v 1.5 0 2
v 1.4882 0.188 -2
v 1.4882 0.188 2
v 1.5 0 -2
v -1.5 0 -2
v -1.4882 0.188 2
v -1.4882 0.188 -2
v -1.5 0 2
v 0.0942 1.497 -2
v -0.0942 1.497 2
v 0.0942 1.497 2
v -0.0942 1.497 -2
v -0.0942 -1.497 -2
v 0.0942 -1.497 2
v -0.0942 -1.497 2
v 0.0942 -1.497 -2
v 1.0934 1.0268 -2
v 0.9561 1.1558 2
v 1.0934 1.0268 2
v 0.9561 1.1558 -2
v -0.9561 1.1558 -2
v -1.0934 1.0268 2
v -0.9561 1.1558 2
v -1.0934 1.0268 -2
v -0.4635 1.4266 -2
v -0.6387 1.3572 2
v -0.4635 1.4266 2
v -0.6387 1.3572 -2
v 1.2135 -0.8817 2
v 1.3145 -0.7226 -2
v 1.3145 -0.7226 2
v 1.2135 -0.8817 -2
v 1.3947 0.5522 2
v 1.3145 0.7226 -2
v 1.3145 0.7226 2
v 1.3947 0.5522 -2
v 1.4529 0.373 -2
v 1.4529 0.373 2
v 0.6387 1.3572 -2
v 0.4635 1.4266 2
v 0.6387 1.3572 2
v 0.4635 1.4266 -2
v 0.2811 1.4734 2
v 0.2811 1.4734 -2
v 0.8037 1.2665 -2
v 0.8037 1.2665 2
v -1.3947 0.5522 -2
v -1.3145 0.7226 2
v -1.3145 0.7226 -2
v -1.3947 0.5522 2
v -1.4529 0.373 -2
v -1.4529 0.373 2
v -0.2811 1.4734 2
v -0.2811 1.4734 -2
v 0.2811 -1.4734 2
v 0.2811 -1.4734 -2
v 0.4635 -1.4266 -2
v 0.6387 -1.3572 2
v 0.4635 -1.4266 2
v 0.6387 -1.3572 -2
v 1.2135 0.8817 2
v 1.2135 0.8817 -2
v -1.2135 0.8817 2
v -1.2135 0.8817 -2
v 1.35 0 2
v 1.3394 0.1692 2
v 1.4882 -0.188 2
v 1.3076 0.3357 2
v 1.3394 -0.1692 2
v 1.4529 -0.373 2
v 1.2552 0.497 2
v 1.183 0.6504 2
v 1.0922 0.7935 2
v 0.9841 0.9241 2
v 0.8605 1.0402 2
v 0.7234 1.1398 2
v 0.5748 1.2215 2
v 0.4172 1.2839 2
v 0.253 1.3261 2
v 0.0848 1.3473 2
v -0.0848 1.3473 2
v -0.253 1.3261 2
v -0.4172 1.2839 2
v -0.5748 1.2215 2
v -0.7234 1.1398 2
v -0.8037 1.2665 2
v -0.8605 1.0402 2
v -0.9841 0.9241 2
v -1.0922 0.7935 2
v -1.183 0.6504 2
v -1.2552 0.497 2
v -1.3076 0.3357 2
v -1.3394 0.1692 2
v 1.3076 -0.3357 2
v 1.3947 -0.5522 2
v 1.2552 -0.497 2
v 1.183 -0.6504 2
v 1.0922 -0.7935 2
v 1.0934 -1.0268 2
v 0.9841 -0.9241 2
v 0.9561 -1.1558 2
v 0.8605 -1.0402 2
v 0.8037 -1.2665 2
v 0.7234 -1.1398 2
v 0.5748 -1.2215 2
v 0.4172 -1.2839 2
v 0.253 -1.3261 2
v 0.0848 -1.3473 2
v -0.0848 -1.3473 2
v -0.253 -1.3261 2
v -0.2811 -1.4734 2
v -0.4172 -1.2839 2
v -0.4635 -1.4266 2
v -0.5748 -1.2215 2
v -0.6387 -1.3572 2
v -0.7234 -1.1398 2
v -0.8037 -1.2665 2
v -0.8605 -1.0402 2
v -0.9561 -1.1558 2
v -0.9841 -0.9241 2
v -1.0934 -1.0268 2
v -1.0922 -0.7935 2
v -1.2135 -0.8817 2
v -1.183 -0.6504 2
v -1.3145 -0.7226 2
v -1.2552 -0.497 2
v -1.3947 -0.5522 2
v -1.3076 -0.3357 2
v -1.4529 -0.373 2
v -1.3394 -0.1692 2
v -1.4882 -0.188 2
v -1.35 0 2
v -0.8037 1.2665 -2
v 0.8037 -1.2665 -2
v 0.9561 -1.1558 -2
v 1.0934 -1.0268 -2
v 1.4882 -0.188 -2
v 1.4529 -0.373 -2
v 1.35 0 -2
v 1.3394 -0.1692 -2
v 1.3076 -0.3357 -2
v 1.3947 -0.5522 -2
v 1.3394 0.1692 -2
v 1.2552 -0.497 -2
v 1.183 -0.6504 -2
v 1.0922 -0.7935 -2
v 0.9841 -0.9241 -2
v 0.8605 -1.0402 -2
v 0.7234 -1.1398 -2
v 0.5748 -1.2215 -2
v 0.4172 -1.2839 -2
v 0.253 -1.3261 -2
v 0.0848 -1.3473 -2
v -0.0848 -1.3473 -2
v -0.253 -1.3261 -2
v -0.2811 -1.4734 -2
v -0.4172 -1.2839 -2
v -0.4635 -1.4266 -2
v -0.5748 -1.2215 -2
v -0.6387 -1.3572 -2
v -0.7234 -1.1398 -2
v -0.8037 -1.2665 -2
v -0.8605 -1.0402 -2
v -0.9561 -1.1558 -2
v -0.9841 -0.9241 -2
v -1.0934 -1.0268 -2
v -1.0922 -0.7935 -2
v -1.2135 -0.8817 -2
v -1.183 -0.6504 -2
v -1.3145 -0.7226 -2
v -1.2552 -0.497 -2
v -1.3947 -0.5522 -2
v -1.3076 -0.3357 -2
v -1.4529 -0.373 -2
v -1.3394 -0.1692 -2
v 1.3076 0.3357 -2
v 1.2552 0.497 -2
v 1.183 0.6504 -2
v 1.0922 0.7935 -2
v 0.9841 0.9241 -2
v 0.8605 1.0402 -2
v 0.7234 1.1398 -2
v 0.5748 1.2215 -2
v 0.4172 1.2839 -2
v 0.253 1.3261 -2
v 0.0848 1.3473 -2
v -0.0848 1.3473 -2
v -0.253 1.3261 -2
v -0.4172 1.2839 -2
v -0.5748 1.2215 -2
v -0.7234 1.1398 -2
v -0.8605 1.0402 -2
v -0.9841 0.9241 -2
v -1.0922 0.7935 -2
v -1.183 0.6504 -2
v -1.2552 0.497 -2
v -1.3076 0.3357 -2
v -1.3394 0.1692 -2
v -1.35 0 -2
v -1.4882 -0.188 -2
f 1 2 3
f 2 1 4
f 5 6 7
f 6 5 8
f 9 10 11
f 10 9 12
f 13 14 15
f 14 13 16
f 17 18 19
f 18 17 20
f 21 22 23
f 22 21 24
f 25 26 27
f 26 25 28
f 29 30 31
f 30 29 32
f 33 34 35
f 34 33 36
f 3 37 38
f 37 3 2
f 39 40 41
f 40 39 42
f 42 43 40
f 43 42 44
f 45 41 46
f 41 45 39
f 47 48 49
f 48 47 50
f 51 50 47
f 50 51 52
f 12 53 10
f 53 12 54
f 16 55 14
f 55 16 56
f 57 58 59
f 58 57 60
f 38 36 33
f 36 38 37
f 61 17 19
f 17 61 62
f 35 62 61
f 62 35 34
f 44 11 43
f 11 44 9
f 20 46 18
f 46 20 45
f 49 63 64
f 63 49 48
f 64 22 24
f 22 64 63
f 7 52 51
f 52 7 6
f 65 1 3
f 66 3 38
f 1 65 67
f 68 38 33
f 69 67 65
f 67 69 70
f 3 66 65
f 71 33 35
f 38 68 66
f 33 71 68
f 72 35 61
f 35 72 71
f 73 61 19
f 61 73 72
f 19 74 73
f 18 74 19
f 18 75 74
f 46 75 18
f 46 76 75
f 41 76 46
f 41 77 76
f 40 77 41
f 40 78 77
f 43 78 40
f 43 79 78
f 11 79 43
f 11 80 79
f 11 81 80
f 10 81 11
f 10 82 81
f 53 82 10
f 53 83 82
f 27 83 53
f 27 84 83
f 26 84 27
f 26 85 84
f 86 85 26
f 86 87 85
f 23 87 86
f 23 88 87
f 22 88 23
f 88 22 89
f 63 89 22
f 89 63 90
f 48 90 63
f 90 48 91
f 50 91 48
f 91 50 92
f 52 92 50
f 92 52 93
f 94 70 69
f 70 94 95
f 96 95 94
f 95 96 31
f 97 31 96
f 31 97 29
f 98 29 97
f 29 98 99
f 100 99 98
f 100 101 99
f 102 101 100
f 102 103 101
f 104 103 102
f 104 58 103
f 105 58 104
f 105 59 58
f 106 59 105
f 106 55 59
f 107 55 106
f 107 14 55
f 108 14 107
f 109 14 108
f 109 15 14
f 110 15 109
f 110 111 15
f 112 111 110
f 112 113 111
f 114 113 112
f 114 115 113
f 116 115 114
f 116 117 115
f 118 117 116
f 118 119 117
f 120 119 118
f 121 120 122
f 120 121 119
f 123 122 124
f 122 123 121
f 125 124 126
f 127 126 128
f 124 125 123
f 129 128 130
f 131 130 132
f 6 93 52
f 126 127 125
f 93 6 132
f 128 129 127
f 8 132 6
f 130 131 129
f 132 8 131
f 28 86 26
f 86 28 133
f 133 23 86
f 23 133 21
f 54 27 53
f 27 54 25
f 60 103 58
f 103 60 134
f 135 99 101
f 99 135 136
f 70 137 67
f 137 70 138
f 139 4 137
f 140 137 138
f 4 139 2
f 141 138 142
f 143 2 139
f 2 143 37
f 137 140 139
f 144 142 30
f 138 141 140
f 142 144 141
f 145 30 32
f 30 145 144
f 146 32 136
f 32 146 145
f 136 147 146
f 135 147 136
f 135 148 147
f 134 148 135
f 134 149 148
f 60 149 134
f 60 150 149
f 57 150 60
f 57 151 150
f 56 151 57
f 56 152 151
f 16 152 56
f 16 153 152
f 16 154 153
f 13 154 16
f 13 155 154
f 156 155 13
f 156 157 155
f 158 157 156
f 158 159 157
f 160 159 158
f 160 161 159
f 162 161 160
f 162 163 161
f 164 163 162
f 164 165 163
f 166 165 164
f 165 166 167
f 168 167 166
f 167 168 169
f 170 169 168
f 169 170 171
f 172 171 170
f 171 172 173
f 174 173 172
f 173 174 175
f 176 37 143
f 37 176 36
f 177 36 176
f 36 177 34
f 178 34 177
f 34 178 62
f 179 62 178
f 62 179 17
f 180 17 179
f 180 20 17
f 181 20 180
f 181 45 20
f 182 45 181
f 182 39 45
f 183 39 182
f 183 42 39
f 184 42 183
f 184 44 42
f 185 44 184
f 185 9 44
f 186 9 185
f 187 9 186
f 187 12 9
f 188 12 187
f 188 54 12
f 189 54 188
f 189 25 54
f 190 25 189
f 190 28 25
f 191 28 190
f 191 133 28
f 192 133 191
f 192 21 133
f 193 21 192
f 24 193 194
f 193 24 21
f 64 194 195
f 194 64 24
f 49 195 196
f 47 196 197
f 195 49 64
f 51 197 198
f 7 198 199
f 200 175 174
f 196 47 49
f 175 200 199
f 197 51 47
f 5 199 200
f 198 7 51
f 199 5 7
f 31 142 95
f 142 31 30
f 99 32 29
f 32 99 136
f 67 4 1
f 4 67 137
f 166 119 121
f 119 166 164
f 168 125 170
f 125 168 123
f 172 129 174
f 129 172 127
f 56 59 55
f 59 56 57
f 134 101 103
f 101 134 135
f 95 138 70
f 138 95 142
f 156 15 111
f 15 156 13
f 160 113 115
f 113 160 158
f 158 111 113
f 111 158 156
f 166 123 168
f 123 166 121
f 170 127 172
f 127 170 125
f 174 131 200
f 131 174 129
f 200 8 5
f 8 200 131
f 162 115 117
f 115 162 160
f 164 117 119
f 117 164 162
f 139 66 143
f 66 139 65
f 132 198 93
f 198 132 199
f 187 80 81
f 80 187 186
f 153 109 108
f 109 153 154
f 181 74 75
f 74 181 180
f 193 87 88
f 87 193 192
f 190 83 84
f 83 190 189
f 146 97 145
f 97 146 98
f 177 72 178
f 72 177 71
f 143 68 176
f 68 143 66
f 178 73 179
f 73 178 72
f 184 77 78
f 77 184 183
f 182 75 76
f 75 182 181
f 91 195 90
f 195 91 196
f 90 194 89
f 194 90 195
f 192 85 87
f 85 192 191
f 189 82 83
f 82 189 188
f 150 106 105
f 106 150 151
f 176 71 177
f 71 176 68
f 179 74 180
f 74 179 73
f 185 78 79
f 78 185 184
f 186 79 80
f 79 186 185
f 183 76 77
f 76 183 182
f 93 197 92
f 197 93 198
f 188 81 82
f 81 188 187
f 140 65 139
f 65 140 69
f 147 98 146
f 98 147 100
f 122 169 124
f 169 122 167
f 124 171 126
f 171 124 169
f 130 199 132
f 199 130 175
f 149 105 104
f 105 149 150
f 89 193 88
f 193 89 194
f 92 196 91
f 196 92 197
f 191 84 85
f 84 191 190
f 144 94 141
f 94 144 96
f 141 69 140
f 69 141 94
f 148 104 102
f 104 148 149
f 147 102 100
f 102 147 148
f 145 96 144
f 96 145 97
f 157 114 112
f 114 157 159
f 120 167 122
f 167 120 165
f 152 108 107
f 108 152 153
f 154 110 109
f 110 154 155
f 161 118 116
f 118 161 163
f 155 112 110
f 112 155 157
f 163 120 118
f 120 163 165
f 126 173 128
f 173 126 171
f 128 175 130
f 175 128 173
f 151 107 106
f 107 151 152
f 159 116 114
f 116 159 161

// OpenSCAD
$fn = 50;


difference() {
	union() {
		translate(v = [0, 0, -2.0000000000]) {
			cylinder(h = 4, r = 1.5000000000);
		}
	}
	union() {
		translate(v = [0, 0, -100.0000000000]) {
			cylinder(h = 200, r = 1.3500000000);
		}
	}
}
